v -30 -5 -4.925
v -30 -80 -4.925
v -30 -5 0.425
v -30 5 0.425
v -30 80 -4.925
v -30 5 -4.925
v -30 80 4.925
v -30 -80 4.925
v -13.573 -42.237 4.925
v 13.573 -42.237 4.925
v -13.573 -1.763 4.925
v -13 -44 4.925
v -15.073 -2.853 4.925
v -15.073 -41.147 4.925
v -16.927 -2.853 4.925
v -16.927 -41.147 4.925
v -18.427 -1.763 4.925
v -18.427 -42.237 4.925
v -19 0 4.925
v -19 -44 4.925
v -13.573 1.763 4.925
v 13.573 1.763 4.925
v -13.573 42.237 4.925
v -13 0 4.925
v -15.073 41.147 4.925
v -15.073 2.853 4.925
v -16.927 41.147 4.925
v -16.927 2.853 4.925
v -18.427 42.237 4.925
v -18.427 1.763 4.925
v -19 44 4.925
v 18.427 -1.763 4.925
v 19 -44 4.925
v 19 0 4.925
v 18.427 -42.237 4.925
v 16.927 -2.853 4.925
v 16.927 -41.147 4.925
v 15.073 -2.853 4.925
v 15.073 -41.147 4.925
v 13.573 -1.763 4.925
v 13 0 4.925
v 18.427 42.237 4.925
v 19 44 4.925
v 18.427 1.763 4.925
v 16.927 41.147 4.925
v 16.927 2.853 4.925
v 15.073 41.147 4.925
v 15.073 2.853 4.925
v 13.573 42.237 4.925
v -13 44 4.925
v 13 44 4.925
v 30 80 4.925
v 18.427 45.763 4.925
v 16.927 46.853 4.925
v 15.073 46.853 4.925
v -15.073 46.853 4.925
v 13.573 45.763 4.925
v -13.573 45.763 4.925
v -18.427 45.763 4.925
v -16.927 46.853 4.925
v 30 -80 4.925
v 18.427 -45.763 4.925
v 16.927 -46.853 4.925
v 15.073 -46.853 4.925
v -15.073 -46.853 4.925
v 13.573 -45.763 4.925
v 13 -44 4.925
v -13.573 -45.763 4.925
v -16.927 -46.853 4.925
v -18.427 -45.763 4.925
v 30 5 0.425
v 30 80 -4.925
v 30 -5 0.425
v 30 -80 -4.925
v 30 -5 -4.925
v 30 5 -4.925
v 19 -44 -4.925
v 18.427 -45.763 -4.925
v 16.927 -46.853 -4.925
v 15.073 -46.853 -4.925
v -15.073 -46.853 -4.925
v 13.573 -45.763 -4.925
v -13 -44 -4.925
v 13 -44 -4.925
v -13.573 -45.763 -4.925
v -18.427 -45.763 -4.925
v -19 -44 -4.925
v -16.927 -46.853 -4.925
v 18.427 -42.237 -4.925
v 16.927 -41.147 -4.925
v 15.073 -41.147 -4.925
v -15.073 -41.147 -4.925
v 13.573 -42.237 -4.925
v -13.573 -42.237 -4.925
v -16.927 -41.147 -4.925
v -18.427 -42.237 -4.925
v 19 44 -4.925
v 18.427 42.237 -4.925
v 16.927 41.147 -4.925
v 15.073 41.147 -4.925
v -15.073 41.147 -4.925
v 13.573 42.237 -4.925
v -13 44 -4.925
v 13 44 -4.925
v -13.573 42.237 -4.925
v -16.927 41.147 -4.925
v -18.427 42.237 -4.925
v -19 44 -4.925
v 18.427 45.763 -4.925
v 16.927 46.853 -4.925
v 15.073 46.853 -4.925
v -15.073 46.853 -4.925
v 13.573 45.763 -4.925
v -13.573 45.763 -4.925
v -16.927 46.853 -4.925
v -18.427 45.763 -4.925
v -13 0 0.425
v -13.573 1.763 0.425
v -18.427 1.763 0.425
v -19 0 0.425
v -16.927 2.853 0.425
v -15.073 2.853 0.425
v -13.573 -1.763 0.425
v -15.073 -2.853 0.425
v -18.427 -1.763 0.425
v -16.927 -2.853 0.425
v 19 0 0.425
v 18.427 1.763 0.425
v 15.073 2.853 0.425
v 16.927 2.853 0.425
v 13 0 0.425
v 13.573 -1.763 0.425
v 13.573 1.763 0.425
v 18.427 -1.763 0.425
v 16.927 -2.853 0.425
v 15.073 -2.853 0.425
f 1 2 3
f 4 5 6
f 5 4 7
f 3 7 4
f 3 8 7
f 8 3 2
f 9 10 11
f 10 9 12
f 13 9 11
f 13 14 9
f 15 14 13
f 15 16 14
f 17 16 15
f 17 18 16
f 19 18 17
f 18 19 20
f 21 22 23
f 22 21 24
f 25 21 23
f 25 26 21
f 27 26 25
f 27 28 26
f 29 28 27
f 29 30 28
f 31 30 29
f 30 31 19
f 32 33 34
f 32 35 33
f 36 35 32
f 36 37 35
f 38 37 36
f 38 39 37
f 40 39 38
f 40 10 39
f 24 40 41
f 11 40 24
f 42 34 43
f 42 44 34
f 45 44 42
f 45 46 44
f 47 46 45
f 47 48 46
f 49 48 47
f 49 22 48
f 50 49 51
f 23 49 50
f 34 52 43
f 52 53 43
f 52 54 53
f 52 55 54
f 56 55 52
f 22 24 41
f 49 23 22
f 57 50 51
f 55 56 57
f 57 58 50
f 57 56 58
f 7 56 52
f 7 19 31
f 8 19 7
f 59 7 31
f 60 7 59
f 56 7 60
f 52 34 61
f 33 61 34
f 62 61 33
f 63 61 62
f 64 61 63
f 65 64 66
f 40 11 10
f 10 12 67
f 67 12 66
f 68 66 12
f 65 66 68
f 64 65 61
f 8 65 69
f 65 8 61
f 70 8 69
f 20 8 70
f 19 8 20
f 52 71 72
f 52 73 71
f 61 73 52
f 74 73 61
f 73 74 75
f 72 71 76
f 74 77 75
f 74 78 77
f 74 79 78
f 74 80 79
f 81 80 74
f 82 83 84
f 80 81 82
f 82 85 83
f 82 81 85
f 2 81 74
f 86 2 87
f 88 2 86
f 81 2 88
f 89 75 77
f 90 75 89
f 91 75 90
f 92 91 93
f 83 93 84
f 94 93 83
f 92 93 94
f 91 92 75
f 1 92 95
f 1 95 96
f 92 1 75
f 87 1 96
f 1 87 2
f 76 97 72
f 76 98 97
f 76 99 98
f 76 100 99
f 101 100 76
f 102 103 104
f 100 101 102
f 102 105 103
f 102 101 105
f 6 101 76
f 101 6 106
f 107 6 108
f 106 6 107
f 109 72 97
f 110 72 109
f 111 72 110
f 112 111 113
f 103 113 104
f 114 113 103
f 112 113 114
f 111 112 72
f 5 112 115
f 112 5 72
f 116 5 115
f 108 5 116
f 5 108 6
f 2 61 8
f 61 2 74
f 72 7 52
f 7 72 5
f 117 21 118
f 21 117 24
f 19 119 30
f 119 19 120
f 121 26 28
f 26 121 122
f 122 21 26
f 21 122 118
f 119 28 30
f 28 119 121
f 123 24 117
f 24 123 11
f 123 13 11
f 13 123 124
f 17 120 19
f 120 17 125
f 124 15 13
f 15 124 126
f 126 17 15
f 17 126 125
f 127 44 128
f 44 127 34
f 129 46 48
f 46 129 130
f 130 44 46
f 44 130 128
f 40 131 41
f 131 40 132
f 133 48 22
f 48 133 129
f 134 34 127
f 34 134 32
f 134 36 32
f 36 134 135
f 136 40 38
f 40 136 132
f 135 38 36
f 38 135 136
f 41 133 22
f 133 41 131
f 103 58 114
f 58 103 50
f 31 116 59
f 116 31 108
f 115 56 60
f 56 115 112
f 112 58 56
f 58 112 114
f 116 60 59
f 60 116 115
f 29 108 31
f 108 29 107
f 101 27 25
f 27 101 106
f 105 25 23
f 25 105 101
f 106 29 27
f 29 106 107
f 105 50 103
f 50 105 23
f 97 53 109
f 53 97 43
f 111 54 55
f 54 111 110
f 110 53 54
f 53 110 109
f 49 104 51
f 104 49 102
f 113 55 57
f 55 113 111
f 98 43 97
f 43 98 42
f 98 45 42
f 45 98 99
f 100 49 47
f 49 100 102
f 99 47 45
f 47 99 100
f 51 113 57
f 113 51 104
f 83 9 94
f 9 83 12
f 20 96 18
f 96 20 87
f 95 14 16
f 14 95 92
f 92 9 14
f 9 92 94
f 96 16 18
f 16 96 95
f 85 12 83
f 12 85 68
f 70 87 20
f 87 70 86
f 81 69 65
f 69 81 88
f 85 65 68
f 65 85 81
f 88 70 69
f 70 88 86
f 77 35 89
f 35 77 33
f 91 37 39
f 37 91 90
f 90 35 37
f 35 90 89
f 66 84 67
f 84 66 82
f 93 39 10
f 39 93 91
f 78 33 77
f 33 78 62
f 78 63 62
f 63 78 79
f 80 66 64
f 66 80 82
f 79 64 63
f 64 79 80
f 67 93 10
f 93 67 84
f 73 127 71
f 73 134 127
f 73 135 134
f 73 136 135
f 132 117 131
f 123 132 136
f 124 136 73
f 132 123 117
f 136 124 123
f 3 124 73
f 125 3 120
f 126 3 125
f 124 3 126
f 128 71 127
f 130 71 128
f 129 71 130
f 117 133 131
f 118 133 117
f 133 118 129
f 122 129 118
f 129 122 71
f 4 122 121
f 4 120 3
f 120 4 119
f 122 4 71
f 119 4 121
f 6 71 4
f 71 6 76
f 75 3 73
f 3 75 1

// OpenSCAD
// 3018 Tischadapter

module Loch() {
    cylinder(d=6,h=20,center=true);

}

module Tisch() {
    difference() {
        cube([60,160,9.85],center=true);
        translate([-16,0,0])
        Loch();
        translate([+16,0,0])
        Loch();
        translate([-16,44,0])
        Loch();
        translate([+16,44,0])
        Loch();
        translate([-16,-44,0])
        Loch();
        translate([+16,-44,0])
        Loch();

        translate([0,0,-4.5])
        cube([80,10,9.85],center=true);
    }
}

Tisch();
